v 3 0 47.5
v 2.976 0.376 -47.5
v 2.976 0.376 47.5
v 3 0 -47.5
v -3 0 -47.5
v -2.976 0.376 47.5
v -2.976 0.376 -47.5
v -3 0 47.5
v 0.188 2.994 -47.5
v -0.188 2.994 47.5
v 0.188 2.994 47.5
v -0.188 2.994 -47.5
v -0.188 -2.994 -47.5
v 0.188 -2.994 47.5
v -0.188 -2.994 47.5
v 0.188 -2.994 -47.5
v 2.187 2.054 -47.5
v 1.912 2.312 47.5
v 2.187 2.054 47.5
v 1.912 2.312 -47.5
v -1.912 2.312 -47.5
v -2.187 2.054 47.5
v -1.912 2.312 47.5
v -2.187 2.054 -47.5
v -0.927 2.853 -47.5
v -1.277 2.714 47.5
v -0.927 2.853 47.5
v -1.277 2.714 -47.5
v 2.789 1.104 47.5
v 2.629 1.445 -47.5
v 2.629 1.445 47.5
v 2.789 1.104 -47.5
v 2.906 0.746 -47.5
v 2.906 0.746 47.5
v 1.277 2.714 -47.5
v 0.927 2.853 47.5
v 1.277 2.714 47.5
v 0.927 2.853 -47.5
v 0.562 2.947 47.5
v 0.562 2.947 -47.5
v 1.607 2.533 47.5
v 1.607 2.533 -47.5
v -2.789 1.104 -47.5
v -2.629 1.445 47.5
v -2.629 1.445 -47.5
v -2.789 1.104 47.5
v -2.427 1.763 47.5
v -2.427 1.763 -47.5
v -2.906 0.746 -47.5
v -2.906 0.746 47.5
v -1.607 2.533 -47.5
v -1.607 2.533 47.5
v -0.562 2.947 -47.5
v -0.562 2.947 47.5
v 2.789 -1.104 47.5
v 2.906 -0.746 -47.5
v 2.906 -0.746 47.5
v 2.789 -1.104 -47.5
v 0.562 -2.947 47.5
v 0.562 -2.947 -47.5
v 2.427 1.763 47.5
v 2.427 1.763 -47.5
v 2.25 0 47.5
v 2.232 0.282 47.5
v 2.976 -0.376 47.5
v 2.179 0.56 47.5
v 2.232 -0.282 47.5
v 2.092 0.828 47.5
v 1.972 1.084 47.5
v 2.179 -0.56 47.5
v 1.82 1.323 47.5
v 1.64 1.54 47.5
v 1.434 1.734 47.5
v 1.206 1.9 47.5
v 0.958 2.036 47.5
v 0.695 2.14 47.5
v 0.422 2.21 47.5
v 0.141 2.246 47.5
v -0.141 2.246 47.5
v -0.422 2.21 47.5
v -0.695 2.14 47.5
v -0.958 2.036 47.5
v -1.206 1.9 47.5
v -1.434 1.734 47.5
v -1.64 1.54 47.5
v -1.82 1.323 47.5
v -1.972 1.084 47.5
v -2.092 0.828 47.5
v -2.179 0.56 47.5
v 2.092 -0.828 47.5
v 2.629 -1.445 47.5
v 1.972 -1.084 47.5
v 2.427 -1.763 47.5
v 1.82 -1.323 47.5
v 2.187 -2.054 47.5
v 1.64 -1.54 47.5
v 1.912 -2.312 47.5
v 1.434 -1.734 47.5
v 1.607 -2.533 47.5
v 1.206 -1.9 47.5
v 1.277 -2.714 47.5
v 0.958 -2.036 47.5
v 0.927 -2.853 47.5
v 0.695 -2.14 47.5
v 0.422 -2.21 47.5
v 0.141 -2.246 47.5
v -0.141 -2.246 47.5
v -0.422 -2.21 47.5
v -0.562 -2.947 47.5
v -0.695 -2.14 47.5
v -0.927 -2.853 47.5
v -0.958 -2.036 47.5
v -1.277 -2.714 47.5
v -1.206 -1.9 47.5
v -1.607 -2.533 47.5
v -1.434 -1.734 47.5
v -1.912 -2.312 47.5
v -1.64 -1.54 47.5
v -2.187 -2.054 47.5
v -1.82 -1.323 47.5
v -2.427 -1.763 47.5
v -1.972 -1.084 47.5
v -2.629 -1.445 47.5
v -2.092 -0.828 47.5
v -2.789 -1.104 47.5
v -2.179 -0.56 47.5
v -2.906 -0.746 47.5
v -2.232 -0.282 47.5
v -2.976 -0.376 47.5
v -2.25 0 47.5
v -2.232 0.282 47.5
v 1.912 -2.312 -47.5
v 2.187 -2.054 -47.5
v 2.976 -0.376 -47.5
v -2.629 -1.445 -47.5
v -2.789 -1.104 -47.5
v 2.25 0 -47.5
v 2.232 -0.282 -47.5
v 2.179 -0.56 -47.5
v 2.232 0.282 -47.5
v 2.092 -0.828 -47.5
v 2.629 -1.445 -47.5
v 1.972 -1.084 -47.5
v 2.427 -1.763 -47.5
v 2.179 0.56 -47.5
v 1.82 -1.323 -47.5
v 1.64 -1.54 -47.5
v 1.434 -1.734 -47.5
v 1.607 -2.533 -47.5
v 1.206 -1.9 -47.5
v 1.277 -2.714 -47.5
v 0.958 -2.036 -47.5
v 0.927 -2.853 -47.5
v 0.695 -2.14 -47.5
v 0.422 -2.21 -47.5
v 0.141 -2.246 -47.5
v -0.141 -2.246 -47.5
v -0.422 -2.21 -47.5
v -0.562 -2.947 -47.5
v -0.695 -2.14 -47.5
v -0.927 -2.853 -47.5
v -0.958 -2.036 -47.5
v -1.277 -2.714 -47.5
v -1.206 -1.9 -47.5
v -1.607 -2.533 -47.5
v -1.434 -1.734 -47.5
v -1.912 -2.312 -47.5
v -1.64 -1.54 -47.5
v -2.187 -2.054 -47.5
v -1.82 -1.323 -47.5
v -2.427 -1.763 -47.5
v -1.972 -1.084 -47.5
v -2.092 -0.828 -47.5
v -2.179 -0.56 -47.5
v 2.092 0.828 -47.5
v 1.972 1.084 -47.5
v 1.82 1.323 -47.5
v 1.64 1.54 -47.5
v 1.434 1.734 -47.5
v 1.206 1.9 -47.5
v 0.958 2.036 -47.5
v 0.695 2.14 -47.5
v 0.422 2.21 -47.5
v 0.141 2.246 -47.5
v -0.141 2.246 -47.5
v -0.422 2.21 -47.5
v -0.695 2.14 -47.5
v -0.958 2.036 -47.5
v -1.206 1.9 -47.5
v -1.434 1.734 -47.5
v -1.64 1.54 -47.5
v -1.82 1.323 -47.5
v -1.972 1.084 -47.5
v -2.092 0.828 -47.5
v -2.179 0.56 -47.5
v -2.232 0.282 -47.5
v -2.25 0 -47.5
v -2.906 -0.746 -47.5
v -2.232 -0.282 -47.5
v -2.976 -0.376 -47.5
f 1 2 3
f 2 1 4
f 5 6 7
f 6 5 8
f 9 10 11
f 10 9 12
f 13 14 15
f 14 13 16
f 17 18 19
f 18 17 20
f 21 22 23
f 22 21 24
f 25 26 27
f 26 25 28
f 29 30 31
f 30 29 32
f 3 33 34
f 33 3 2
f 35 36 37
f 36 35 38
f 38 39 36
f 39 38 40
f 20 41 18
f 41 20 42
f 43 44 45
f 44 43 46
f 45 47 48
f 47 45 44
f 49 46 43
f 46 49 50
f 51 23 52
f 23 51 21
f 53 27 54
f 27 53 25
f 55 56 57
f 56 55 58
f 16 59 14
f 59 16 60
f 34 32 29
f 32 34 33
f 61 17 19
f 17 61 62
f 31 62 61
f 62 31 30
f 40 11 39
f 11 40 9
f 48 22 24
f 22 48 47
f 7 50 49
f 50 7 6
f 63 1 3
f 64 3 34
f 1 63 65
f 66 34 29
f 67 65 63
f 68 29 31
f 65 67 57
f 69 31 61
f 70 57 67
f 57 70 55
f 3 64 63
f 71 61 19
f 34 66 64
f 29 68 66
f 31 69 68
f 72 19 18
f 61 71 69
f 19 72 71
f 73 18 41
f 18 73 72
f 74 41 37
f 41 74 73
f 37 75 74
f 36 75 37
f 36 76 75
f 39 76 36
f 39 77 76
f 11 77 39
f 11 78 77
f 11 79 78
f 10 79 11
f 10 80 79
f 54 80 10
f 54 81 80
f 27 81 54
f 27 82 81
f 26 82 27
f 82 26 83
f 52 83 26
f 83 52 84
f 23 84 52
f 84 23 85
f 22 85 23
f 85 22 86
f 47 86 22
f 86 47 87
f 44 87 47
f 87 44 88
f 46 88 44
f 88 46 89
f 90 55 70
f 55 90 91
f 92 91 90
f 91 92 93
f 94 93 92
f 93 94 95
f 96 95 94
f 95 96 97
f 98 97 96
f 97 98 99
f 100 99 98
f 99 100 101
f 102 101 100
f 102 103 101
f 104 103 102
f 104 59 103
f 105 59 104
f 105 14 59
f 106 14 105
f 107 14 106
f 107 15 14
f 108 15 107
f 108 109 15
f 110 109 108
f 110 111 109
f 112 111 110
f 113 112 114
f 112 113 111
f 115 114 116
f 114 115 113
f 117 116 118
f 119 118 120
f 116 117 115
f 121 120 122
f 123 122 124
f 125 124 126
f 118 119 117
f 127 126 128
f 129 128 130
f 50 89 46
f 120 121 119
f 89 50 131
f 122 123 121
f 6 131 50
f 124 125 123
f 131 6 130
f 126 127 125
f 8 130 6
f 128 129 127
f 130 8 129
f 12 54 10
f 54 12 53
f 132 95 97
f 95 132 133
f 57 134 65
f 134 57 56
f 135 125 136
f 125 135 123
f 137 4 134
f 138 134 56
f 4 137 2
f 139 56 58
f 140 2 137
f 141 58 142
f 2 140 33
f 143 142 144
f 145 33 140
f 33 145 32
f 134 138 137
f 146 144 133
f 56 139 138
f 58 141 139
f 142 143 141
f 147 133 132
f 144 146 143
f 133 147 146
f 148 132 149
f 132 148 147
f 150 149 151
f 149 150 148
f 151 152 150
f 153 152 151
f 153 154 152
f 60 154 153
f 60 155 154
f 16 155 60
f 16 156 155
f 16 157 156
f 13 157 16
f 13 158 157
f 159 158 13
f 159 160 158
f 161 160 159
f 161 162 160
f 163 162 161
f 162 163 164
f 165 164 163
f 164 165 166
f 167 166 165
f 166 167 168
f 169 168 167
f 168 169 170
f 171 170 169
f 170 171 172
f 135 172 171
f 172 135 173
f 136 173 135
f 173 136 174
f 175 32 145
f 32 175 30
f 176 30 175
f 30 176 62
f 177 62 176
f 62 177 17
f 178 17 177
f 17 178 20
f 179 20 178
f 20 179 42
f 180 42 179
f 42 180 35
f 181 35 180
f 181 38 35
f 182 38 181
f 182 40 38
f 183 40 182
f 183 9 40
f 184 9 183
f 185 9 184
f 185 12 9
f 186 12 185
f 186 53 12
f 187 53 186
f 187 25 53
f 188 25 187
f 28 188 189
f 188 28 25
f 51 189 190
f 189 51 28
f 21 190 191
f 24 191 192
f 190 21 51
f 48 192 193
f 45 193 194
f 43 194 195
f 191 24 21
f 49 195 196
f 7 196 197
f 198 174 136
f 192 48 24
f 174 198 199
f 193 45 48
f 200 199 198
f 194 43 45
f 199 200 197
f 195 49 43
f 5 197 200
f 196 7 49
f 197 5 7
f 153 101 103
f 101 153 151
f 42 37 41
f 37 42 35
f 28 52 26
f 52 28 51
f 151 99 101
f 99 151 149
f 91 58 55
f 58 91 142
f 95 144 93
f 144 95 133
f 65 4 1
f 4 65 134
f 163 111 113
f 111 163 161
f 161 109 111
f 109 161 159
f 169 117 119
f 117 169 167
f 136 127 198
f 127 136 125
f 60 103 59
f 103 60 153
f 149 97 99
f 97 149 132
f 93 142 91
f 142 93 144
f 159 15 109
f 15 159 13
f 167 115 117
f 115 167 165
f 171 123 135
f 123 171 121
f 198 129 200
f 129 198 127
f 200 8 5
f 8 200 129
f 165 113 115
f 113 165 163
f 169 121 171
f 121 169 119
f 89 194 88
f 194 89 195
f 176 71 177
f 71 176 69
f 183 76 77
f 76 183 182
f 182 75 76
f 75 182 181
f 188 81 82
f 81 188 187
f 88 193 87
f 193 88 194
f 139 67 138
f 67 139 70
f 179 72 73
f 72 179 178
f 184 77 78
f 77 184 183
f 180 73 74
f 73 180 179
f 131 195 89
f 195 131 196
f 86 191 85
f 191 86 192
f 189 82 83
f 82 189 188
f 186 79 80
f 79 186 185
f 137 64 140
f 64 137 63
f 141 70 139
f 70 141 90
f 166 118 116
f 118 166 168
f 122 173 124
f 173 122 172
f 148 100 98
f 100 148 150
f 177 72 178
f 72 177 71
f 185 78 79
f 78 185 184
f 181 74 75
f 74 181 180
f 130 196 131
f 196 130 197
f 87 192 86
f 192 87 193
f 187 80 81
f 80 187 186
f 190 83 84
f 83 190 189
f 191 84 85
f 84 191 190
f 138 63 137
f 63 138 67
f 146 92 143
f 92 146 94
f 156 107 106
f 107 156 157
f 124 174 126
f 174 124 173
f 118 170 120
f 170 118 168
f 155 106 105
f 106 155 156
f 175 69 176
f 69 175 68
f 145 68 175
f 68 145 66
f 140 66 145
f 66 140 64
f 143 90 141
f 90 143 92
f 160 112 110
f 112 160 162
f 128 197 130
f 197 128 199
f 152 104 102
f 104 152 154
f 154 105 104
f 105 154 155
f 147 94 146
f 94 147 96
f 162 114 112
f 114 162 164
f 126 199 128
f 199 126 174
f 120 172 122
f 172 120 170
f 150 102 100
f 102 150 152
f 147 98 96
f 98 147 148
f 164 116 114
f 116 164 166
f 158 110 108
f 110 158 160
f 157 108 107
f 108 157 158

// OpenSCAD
$fn = 50;


difference() {
	union() {
		translate(v = [0, 0, -47.5000000000]) {
			cylinder(h = 95, r = 3.0000000000);
		}
	}
	union() {
		translate(v = [0, 0, -100.0000000000]) {
			cylinder(h = 200, r = 2.2500000000);
		}
	}
}
